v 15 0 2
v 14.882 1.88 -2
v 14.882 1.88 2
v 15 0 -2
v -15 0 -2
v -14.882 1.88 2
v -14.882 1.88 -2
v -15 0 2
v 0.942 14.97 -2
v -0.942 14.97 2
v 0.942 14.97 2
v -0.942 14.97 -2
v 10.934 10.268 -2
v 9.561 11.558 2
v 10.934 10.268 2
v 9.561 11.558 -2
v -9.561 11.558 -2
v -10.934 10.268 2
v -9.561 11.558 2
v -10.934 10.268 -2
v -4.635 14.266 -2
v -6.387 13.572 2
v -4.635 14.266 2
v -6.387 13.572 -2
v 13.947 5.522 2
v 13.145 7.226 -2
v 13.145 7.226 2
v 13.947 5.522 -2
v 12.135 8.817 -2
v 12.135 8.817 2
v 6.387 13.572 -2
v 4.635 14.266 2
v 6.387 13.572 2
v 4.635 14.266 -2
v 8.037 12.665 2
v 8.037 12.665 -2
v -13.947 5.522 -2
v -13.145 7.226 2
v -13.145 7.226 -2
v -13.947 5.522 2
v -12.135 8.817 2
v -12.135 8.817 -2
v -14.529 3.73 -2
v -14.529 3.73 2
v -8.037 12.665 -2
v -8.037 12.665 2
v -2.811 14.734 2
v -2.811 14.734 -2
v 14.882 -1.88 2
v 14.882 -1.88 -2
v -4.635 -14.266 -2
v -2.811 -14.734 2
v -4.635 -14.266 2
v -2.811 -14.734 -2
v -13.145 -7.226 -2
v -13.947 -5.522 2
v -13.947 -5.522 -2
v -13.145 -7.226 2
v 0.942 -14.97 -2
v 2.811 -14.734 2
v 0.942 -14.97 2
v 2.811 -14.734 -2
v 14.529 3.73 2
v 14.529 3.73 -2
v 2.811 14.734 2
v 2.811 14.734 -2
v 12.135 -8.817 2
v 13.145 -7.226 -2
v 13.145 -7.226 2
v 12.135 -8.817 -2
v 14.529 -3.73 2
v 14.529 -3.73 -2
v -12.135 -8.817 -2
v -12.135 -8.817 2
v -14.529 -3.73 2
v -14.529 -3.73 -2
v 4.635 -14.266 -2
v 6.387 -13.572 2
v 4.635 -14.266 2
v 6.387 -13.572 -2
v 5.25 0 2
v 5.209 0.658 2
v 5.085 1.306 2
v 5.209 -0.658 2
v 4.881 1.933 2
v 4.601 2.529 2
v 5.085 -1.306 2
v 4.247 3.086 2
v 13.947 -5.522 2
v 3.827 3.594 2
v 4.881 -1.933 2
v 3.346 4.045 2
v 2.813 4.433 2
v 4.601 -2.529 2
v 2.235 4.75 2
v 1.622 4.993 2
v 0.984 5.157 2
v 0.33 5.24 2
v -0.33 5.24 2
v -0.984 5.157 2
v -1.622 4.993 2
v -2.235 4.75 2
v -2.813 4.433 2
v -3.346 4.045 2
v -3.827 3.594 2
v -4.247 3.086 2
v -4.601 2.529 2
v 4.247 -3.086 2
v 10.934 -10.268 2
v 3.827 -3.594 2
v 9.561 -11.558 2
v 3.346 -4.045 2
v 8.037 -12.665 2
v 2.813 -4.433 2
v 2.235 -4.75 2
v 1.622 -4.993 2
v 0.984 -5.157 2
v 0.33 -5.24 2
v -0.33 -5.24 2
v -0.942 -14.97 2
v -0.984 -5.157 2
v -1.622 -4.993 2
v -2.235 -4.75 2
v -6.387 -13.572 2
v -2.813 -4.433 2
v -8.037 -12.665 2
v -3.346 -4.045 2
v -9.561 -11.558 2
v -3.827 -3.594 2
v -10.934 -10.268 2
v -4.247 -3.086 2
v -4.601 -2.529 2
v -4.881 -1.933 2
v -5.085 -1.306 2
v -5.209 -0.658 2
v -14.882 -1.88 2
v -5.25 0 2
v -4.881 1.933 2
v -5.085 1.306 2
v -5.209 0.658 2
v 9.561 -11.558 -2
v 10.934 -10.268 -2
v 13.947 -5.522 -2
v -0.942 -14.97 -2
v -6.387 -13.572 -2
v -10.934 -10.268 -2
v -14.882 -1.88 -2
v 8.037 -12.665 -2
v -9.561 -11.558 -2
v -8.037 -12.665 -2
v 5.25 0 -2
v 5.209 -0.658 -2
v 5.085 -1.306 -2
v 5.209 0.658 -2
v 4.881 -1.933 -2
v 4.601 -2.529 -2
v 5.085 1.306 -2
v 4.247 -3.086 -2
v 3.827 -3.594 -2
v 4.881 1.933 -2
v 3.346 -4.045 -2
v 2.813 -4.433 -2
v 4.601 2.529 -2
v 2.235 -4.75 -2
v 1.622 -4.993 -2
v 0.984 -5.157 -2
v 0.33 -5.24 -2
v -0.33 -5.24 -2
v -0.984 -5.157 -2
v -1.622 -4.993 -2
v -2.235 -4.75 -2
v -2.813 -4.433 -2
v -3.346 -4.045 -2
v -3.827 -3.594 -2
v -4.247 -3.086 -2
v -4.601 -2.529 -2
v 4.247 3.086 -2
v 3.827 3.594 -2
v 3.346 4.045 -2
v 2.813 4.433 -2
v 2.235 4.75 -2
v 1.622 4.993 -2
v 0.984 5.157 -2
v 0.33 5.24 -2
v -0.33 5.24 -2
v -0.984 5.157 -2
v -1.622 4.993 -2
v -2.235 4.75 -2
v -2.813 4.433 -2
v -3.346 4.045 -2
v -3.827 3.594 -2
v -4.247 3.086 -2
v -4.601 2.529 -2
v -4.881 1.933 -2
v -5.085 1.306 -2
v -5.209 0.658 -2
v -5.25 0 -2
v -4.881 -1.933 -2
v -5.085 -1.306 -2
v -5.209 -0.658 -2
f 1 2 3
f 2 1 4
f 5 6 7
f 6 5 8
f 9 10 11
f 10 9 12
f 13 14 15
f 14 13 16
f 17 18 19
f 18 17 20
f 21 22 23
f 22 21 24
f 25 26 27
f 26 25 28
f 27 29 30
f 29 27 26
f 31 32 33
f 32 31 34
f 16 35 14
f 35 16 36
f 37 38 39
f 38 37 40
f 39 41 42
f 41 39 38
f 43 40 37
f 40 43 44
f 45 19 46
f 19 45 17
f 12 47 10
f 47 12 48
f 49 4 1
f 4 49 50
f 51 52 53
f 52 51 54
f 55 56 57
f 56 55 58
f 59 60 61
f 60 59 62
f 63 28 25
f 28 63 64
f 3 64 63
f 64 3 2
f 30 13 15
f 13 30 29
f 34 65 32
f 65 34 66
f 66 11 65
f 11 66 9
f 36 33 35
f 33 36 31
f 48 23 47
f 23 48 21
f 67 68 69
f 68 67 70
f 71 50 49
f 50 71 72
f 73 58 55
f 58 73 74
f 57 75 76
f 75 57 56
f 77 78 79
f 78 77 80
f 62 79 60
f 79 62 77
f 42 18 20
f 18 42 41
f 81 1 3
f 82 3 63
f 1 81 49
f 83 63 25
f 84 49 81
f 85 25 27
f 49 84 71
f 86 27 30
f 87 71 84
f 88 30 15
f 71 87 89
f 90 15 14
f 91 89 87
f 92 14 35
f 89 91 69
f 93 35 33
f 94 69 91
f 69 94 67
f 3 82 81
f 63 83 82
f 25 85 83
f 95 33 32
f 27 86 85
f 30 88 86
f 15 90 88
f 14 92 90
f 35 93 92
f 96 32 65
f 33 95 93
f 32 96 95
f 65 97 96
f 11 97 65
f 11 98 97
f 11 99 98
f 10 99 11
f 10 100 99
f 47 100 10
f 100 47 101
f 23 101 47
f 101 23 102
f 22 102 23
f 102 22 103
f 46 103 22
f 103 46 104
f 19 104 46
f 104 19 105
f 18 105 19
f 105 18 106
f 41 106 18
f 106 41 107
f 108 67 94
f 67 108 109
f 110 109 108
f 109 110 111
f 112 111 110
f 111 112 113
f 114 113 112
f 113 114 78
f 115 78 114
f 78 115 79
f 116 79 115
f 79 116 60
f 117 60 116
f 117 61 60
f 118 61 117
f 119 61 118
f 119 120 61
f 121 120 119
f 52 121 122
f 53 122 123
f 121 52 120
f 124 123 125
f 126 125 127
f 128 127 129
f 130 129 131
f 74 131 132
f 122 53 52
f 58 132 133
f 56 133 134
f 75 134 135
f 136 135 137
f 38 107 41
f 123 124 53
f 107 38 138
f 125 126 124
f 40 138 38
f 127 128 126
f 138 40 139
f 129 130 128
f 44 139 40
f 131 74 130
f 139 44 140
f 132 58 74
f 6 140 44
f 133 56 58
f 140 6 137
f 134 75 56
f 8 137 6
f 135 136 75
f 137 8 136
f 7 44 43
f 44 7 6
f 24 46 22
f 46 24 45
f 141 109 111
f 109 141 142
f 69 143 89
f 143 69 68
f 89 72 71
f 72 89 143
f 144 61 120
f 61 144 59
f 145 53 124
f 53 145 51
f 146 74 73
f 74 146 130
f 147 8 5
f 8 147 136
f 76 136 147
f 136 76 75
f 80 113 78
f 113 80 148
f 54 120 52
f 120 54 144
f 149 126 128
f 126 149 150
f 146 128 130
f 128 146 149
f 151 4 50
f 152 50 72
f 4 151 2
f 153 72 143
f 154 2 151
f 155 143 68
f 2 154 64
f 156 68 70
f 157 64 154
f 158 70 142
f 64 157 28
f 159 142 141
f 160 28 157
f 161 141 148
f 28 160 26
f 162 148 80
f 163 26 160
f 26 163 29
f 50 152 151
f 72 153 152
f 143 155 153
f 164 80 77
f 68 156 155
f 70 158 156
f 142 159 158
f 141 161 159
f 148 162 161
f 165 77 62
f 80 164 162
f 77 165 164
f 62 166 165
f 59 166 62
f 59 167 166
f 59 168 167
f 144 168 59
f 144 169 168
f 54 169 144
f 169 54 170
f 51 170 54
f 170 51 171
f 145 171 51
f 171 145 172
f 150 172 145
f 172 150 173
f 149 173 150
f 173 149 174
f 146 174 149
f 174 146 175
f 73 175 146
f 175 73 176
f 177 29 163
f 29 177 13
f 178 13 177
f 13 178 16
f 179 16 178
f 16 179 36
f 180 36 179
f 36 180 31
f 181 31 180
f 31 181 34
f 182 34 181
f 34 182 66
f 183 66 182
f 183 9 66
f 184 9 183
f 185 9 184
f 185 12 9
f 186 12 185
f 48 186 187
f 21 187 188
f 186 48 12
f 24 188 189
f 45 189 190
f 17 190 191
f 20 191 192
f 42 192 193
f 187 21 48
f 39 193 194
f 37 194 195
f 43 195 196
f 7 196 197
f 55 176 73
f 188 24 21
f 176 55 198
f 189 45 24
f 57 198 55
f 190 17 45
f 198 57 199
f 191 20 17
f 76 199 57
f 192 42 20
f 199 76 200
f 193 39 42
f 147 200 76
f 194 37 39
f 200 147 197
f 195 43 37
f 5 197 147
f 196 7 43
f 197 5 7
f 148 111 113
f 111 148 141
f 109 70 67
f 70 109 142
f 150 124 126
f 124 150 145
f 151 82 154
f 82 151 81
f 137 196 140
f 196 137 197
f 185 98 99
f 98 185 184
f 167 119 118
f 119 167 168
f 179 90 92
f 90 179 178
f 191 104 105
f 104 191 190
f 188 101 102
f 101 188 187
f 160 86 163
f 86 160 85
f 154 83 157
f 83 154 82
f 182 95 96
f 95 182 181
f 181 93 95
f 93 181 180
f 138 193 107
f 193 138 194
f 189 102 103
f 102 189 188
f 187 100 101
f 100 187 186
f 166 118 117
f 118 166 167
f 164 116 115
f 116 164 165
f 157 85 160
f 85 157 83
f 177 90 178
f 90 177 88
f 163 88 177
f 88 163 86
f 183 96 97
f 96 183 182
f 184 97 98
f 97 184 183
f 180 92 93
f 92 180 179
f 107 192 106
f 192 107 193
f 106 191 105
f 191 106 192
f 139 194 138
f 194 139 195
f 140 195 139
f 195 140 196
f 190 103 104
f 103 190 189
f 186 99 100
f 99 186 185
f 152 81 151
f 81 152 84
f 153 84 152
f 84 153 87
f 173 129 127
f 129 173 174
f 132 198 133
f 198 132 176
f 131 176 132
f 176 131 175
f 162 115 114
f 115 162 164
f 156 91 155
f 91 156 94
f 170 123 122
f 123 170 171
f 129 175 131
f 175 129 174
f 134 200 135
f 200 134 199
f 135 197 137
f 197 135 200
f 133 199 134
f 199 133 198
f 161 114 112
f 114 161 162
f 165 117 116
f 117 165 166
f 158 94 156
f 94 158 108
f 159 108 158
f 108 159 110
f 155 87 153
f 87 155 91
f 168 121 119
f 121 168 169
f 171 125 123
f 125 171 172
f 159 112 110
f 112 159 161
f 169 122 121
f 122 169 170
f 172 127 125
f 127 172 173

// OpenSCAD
$fn = 50;


difference() {
	union() {
		translate(v = [0, 0, -2.0000000000]) {
			cylinder(h = 4, r = 15.0000000000);
		}
	}
	union() {
		translate(v = [0, 0, -100.0000000000]) {
			cylinder(h = 200, r = 5.2500000000);
		}
	}
}
